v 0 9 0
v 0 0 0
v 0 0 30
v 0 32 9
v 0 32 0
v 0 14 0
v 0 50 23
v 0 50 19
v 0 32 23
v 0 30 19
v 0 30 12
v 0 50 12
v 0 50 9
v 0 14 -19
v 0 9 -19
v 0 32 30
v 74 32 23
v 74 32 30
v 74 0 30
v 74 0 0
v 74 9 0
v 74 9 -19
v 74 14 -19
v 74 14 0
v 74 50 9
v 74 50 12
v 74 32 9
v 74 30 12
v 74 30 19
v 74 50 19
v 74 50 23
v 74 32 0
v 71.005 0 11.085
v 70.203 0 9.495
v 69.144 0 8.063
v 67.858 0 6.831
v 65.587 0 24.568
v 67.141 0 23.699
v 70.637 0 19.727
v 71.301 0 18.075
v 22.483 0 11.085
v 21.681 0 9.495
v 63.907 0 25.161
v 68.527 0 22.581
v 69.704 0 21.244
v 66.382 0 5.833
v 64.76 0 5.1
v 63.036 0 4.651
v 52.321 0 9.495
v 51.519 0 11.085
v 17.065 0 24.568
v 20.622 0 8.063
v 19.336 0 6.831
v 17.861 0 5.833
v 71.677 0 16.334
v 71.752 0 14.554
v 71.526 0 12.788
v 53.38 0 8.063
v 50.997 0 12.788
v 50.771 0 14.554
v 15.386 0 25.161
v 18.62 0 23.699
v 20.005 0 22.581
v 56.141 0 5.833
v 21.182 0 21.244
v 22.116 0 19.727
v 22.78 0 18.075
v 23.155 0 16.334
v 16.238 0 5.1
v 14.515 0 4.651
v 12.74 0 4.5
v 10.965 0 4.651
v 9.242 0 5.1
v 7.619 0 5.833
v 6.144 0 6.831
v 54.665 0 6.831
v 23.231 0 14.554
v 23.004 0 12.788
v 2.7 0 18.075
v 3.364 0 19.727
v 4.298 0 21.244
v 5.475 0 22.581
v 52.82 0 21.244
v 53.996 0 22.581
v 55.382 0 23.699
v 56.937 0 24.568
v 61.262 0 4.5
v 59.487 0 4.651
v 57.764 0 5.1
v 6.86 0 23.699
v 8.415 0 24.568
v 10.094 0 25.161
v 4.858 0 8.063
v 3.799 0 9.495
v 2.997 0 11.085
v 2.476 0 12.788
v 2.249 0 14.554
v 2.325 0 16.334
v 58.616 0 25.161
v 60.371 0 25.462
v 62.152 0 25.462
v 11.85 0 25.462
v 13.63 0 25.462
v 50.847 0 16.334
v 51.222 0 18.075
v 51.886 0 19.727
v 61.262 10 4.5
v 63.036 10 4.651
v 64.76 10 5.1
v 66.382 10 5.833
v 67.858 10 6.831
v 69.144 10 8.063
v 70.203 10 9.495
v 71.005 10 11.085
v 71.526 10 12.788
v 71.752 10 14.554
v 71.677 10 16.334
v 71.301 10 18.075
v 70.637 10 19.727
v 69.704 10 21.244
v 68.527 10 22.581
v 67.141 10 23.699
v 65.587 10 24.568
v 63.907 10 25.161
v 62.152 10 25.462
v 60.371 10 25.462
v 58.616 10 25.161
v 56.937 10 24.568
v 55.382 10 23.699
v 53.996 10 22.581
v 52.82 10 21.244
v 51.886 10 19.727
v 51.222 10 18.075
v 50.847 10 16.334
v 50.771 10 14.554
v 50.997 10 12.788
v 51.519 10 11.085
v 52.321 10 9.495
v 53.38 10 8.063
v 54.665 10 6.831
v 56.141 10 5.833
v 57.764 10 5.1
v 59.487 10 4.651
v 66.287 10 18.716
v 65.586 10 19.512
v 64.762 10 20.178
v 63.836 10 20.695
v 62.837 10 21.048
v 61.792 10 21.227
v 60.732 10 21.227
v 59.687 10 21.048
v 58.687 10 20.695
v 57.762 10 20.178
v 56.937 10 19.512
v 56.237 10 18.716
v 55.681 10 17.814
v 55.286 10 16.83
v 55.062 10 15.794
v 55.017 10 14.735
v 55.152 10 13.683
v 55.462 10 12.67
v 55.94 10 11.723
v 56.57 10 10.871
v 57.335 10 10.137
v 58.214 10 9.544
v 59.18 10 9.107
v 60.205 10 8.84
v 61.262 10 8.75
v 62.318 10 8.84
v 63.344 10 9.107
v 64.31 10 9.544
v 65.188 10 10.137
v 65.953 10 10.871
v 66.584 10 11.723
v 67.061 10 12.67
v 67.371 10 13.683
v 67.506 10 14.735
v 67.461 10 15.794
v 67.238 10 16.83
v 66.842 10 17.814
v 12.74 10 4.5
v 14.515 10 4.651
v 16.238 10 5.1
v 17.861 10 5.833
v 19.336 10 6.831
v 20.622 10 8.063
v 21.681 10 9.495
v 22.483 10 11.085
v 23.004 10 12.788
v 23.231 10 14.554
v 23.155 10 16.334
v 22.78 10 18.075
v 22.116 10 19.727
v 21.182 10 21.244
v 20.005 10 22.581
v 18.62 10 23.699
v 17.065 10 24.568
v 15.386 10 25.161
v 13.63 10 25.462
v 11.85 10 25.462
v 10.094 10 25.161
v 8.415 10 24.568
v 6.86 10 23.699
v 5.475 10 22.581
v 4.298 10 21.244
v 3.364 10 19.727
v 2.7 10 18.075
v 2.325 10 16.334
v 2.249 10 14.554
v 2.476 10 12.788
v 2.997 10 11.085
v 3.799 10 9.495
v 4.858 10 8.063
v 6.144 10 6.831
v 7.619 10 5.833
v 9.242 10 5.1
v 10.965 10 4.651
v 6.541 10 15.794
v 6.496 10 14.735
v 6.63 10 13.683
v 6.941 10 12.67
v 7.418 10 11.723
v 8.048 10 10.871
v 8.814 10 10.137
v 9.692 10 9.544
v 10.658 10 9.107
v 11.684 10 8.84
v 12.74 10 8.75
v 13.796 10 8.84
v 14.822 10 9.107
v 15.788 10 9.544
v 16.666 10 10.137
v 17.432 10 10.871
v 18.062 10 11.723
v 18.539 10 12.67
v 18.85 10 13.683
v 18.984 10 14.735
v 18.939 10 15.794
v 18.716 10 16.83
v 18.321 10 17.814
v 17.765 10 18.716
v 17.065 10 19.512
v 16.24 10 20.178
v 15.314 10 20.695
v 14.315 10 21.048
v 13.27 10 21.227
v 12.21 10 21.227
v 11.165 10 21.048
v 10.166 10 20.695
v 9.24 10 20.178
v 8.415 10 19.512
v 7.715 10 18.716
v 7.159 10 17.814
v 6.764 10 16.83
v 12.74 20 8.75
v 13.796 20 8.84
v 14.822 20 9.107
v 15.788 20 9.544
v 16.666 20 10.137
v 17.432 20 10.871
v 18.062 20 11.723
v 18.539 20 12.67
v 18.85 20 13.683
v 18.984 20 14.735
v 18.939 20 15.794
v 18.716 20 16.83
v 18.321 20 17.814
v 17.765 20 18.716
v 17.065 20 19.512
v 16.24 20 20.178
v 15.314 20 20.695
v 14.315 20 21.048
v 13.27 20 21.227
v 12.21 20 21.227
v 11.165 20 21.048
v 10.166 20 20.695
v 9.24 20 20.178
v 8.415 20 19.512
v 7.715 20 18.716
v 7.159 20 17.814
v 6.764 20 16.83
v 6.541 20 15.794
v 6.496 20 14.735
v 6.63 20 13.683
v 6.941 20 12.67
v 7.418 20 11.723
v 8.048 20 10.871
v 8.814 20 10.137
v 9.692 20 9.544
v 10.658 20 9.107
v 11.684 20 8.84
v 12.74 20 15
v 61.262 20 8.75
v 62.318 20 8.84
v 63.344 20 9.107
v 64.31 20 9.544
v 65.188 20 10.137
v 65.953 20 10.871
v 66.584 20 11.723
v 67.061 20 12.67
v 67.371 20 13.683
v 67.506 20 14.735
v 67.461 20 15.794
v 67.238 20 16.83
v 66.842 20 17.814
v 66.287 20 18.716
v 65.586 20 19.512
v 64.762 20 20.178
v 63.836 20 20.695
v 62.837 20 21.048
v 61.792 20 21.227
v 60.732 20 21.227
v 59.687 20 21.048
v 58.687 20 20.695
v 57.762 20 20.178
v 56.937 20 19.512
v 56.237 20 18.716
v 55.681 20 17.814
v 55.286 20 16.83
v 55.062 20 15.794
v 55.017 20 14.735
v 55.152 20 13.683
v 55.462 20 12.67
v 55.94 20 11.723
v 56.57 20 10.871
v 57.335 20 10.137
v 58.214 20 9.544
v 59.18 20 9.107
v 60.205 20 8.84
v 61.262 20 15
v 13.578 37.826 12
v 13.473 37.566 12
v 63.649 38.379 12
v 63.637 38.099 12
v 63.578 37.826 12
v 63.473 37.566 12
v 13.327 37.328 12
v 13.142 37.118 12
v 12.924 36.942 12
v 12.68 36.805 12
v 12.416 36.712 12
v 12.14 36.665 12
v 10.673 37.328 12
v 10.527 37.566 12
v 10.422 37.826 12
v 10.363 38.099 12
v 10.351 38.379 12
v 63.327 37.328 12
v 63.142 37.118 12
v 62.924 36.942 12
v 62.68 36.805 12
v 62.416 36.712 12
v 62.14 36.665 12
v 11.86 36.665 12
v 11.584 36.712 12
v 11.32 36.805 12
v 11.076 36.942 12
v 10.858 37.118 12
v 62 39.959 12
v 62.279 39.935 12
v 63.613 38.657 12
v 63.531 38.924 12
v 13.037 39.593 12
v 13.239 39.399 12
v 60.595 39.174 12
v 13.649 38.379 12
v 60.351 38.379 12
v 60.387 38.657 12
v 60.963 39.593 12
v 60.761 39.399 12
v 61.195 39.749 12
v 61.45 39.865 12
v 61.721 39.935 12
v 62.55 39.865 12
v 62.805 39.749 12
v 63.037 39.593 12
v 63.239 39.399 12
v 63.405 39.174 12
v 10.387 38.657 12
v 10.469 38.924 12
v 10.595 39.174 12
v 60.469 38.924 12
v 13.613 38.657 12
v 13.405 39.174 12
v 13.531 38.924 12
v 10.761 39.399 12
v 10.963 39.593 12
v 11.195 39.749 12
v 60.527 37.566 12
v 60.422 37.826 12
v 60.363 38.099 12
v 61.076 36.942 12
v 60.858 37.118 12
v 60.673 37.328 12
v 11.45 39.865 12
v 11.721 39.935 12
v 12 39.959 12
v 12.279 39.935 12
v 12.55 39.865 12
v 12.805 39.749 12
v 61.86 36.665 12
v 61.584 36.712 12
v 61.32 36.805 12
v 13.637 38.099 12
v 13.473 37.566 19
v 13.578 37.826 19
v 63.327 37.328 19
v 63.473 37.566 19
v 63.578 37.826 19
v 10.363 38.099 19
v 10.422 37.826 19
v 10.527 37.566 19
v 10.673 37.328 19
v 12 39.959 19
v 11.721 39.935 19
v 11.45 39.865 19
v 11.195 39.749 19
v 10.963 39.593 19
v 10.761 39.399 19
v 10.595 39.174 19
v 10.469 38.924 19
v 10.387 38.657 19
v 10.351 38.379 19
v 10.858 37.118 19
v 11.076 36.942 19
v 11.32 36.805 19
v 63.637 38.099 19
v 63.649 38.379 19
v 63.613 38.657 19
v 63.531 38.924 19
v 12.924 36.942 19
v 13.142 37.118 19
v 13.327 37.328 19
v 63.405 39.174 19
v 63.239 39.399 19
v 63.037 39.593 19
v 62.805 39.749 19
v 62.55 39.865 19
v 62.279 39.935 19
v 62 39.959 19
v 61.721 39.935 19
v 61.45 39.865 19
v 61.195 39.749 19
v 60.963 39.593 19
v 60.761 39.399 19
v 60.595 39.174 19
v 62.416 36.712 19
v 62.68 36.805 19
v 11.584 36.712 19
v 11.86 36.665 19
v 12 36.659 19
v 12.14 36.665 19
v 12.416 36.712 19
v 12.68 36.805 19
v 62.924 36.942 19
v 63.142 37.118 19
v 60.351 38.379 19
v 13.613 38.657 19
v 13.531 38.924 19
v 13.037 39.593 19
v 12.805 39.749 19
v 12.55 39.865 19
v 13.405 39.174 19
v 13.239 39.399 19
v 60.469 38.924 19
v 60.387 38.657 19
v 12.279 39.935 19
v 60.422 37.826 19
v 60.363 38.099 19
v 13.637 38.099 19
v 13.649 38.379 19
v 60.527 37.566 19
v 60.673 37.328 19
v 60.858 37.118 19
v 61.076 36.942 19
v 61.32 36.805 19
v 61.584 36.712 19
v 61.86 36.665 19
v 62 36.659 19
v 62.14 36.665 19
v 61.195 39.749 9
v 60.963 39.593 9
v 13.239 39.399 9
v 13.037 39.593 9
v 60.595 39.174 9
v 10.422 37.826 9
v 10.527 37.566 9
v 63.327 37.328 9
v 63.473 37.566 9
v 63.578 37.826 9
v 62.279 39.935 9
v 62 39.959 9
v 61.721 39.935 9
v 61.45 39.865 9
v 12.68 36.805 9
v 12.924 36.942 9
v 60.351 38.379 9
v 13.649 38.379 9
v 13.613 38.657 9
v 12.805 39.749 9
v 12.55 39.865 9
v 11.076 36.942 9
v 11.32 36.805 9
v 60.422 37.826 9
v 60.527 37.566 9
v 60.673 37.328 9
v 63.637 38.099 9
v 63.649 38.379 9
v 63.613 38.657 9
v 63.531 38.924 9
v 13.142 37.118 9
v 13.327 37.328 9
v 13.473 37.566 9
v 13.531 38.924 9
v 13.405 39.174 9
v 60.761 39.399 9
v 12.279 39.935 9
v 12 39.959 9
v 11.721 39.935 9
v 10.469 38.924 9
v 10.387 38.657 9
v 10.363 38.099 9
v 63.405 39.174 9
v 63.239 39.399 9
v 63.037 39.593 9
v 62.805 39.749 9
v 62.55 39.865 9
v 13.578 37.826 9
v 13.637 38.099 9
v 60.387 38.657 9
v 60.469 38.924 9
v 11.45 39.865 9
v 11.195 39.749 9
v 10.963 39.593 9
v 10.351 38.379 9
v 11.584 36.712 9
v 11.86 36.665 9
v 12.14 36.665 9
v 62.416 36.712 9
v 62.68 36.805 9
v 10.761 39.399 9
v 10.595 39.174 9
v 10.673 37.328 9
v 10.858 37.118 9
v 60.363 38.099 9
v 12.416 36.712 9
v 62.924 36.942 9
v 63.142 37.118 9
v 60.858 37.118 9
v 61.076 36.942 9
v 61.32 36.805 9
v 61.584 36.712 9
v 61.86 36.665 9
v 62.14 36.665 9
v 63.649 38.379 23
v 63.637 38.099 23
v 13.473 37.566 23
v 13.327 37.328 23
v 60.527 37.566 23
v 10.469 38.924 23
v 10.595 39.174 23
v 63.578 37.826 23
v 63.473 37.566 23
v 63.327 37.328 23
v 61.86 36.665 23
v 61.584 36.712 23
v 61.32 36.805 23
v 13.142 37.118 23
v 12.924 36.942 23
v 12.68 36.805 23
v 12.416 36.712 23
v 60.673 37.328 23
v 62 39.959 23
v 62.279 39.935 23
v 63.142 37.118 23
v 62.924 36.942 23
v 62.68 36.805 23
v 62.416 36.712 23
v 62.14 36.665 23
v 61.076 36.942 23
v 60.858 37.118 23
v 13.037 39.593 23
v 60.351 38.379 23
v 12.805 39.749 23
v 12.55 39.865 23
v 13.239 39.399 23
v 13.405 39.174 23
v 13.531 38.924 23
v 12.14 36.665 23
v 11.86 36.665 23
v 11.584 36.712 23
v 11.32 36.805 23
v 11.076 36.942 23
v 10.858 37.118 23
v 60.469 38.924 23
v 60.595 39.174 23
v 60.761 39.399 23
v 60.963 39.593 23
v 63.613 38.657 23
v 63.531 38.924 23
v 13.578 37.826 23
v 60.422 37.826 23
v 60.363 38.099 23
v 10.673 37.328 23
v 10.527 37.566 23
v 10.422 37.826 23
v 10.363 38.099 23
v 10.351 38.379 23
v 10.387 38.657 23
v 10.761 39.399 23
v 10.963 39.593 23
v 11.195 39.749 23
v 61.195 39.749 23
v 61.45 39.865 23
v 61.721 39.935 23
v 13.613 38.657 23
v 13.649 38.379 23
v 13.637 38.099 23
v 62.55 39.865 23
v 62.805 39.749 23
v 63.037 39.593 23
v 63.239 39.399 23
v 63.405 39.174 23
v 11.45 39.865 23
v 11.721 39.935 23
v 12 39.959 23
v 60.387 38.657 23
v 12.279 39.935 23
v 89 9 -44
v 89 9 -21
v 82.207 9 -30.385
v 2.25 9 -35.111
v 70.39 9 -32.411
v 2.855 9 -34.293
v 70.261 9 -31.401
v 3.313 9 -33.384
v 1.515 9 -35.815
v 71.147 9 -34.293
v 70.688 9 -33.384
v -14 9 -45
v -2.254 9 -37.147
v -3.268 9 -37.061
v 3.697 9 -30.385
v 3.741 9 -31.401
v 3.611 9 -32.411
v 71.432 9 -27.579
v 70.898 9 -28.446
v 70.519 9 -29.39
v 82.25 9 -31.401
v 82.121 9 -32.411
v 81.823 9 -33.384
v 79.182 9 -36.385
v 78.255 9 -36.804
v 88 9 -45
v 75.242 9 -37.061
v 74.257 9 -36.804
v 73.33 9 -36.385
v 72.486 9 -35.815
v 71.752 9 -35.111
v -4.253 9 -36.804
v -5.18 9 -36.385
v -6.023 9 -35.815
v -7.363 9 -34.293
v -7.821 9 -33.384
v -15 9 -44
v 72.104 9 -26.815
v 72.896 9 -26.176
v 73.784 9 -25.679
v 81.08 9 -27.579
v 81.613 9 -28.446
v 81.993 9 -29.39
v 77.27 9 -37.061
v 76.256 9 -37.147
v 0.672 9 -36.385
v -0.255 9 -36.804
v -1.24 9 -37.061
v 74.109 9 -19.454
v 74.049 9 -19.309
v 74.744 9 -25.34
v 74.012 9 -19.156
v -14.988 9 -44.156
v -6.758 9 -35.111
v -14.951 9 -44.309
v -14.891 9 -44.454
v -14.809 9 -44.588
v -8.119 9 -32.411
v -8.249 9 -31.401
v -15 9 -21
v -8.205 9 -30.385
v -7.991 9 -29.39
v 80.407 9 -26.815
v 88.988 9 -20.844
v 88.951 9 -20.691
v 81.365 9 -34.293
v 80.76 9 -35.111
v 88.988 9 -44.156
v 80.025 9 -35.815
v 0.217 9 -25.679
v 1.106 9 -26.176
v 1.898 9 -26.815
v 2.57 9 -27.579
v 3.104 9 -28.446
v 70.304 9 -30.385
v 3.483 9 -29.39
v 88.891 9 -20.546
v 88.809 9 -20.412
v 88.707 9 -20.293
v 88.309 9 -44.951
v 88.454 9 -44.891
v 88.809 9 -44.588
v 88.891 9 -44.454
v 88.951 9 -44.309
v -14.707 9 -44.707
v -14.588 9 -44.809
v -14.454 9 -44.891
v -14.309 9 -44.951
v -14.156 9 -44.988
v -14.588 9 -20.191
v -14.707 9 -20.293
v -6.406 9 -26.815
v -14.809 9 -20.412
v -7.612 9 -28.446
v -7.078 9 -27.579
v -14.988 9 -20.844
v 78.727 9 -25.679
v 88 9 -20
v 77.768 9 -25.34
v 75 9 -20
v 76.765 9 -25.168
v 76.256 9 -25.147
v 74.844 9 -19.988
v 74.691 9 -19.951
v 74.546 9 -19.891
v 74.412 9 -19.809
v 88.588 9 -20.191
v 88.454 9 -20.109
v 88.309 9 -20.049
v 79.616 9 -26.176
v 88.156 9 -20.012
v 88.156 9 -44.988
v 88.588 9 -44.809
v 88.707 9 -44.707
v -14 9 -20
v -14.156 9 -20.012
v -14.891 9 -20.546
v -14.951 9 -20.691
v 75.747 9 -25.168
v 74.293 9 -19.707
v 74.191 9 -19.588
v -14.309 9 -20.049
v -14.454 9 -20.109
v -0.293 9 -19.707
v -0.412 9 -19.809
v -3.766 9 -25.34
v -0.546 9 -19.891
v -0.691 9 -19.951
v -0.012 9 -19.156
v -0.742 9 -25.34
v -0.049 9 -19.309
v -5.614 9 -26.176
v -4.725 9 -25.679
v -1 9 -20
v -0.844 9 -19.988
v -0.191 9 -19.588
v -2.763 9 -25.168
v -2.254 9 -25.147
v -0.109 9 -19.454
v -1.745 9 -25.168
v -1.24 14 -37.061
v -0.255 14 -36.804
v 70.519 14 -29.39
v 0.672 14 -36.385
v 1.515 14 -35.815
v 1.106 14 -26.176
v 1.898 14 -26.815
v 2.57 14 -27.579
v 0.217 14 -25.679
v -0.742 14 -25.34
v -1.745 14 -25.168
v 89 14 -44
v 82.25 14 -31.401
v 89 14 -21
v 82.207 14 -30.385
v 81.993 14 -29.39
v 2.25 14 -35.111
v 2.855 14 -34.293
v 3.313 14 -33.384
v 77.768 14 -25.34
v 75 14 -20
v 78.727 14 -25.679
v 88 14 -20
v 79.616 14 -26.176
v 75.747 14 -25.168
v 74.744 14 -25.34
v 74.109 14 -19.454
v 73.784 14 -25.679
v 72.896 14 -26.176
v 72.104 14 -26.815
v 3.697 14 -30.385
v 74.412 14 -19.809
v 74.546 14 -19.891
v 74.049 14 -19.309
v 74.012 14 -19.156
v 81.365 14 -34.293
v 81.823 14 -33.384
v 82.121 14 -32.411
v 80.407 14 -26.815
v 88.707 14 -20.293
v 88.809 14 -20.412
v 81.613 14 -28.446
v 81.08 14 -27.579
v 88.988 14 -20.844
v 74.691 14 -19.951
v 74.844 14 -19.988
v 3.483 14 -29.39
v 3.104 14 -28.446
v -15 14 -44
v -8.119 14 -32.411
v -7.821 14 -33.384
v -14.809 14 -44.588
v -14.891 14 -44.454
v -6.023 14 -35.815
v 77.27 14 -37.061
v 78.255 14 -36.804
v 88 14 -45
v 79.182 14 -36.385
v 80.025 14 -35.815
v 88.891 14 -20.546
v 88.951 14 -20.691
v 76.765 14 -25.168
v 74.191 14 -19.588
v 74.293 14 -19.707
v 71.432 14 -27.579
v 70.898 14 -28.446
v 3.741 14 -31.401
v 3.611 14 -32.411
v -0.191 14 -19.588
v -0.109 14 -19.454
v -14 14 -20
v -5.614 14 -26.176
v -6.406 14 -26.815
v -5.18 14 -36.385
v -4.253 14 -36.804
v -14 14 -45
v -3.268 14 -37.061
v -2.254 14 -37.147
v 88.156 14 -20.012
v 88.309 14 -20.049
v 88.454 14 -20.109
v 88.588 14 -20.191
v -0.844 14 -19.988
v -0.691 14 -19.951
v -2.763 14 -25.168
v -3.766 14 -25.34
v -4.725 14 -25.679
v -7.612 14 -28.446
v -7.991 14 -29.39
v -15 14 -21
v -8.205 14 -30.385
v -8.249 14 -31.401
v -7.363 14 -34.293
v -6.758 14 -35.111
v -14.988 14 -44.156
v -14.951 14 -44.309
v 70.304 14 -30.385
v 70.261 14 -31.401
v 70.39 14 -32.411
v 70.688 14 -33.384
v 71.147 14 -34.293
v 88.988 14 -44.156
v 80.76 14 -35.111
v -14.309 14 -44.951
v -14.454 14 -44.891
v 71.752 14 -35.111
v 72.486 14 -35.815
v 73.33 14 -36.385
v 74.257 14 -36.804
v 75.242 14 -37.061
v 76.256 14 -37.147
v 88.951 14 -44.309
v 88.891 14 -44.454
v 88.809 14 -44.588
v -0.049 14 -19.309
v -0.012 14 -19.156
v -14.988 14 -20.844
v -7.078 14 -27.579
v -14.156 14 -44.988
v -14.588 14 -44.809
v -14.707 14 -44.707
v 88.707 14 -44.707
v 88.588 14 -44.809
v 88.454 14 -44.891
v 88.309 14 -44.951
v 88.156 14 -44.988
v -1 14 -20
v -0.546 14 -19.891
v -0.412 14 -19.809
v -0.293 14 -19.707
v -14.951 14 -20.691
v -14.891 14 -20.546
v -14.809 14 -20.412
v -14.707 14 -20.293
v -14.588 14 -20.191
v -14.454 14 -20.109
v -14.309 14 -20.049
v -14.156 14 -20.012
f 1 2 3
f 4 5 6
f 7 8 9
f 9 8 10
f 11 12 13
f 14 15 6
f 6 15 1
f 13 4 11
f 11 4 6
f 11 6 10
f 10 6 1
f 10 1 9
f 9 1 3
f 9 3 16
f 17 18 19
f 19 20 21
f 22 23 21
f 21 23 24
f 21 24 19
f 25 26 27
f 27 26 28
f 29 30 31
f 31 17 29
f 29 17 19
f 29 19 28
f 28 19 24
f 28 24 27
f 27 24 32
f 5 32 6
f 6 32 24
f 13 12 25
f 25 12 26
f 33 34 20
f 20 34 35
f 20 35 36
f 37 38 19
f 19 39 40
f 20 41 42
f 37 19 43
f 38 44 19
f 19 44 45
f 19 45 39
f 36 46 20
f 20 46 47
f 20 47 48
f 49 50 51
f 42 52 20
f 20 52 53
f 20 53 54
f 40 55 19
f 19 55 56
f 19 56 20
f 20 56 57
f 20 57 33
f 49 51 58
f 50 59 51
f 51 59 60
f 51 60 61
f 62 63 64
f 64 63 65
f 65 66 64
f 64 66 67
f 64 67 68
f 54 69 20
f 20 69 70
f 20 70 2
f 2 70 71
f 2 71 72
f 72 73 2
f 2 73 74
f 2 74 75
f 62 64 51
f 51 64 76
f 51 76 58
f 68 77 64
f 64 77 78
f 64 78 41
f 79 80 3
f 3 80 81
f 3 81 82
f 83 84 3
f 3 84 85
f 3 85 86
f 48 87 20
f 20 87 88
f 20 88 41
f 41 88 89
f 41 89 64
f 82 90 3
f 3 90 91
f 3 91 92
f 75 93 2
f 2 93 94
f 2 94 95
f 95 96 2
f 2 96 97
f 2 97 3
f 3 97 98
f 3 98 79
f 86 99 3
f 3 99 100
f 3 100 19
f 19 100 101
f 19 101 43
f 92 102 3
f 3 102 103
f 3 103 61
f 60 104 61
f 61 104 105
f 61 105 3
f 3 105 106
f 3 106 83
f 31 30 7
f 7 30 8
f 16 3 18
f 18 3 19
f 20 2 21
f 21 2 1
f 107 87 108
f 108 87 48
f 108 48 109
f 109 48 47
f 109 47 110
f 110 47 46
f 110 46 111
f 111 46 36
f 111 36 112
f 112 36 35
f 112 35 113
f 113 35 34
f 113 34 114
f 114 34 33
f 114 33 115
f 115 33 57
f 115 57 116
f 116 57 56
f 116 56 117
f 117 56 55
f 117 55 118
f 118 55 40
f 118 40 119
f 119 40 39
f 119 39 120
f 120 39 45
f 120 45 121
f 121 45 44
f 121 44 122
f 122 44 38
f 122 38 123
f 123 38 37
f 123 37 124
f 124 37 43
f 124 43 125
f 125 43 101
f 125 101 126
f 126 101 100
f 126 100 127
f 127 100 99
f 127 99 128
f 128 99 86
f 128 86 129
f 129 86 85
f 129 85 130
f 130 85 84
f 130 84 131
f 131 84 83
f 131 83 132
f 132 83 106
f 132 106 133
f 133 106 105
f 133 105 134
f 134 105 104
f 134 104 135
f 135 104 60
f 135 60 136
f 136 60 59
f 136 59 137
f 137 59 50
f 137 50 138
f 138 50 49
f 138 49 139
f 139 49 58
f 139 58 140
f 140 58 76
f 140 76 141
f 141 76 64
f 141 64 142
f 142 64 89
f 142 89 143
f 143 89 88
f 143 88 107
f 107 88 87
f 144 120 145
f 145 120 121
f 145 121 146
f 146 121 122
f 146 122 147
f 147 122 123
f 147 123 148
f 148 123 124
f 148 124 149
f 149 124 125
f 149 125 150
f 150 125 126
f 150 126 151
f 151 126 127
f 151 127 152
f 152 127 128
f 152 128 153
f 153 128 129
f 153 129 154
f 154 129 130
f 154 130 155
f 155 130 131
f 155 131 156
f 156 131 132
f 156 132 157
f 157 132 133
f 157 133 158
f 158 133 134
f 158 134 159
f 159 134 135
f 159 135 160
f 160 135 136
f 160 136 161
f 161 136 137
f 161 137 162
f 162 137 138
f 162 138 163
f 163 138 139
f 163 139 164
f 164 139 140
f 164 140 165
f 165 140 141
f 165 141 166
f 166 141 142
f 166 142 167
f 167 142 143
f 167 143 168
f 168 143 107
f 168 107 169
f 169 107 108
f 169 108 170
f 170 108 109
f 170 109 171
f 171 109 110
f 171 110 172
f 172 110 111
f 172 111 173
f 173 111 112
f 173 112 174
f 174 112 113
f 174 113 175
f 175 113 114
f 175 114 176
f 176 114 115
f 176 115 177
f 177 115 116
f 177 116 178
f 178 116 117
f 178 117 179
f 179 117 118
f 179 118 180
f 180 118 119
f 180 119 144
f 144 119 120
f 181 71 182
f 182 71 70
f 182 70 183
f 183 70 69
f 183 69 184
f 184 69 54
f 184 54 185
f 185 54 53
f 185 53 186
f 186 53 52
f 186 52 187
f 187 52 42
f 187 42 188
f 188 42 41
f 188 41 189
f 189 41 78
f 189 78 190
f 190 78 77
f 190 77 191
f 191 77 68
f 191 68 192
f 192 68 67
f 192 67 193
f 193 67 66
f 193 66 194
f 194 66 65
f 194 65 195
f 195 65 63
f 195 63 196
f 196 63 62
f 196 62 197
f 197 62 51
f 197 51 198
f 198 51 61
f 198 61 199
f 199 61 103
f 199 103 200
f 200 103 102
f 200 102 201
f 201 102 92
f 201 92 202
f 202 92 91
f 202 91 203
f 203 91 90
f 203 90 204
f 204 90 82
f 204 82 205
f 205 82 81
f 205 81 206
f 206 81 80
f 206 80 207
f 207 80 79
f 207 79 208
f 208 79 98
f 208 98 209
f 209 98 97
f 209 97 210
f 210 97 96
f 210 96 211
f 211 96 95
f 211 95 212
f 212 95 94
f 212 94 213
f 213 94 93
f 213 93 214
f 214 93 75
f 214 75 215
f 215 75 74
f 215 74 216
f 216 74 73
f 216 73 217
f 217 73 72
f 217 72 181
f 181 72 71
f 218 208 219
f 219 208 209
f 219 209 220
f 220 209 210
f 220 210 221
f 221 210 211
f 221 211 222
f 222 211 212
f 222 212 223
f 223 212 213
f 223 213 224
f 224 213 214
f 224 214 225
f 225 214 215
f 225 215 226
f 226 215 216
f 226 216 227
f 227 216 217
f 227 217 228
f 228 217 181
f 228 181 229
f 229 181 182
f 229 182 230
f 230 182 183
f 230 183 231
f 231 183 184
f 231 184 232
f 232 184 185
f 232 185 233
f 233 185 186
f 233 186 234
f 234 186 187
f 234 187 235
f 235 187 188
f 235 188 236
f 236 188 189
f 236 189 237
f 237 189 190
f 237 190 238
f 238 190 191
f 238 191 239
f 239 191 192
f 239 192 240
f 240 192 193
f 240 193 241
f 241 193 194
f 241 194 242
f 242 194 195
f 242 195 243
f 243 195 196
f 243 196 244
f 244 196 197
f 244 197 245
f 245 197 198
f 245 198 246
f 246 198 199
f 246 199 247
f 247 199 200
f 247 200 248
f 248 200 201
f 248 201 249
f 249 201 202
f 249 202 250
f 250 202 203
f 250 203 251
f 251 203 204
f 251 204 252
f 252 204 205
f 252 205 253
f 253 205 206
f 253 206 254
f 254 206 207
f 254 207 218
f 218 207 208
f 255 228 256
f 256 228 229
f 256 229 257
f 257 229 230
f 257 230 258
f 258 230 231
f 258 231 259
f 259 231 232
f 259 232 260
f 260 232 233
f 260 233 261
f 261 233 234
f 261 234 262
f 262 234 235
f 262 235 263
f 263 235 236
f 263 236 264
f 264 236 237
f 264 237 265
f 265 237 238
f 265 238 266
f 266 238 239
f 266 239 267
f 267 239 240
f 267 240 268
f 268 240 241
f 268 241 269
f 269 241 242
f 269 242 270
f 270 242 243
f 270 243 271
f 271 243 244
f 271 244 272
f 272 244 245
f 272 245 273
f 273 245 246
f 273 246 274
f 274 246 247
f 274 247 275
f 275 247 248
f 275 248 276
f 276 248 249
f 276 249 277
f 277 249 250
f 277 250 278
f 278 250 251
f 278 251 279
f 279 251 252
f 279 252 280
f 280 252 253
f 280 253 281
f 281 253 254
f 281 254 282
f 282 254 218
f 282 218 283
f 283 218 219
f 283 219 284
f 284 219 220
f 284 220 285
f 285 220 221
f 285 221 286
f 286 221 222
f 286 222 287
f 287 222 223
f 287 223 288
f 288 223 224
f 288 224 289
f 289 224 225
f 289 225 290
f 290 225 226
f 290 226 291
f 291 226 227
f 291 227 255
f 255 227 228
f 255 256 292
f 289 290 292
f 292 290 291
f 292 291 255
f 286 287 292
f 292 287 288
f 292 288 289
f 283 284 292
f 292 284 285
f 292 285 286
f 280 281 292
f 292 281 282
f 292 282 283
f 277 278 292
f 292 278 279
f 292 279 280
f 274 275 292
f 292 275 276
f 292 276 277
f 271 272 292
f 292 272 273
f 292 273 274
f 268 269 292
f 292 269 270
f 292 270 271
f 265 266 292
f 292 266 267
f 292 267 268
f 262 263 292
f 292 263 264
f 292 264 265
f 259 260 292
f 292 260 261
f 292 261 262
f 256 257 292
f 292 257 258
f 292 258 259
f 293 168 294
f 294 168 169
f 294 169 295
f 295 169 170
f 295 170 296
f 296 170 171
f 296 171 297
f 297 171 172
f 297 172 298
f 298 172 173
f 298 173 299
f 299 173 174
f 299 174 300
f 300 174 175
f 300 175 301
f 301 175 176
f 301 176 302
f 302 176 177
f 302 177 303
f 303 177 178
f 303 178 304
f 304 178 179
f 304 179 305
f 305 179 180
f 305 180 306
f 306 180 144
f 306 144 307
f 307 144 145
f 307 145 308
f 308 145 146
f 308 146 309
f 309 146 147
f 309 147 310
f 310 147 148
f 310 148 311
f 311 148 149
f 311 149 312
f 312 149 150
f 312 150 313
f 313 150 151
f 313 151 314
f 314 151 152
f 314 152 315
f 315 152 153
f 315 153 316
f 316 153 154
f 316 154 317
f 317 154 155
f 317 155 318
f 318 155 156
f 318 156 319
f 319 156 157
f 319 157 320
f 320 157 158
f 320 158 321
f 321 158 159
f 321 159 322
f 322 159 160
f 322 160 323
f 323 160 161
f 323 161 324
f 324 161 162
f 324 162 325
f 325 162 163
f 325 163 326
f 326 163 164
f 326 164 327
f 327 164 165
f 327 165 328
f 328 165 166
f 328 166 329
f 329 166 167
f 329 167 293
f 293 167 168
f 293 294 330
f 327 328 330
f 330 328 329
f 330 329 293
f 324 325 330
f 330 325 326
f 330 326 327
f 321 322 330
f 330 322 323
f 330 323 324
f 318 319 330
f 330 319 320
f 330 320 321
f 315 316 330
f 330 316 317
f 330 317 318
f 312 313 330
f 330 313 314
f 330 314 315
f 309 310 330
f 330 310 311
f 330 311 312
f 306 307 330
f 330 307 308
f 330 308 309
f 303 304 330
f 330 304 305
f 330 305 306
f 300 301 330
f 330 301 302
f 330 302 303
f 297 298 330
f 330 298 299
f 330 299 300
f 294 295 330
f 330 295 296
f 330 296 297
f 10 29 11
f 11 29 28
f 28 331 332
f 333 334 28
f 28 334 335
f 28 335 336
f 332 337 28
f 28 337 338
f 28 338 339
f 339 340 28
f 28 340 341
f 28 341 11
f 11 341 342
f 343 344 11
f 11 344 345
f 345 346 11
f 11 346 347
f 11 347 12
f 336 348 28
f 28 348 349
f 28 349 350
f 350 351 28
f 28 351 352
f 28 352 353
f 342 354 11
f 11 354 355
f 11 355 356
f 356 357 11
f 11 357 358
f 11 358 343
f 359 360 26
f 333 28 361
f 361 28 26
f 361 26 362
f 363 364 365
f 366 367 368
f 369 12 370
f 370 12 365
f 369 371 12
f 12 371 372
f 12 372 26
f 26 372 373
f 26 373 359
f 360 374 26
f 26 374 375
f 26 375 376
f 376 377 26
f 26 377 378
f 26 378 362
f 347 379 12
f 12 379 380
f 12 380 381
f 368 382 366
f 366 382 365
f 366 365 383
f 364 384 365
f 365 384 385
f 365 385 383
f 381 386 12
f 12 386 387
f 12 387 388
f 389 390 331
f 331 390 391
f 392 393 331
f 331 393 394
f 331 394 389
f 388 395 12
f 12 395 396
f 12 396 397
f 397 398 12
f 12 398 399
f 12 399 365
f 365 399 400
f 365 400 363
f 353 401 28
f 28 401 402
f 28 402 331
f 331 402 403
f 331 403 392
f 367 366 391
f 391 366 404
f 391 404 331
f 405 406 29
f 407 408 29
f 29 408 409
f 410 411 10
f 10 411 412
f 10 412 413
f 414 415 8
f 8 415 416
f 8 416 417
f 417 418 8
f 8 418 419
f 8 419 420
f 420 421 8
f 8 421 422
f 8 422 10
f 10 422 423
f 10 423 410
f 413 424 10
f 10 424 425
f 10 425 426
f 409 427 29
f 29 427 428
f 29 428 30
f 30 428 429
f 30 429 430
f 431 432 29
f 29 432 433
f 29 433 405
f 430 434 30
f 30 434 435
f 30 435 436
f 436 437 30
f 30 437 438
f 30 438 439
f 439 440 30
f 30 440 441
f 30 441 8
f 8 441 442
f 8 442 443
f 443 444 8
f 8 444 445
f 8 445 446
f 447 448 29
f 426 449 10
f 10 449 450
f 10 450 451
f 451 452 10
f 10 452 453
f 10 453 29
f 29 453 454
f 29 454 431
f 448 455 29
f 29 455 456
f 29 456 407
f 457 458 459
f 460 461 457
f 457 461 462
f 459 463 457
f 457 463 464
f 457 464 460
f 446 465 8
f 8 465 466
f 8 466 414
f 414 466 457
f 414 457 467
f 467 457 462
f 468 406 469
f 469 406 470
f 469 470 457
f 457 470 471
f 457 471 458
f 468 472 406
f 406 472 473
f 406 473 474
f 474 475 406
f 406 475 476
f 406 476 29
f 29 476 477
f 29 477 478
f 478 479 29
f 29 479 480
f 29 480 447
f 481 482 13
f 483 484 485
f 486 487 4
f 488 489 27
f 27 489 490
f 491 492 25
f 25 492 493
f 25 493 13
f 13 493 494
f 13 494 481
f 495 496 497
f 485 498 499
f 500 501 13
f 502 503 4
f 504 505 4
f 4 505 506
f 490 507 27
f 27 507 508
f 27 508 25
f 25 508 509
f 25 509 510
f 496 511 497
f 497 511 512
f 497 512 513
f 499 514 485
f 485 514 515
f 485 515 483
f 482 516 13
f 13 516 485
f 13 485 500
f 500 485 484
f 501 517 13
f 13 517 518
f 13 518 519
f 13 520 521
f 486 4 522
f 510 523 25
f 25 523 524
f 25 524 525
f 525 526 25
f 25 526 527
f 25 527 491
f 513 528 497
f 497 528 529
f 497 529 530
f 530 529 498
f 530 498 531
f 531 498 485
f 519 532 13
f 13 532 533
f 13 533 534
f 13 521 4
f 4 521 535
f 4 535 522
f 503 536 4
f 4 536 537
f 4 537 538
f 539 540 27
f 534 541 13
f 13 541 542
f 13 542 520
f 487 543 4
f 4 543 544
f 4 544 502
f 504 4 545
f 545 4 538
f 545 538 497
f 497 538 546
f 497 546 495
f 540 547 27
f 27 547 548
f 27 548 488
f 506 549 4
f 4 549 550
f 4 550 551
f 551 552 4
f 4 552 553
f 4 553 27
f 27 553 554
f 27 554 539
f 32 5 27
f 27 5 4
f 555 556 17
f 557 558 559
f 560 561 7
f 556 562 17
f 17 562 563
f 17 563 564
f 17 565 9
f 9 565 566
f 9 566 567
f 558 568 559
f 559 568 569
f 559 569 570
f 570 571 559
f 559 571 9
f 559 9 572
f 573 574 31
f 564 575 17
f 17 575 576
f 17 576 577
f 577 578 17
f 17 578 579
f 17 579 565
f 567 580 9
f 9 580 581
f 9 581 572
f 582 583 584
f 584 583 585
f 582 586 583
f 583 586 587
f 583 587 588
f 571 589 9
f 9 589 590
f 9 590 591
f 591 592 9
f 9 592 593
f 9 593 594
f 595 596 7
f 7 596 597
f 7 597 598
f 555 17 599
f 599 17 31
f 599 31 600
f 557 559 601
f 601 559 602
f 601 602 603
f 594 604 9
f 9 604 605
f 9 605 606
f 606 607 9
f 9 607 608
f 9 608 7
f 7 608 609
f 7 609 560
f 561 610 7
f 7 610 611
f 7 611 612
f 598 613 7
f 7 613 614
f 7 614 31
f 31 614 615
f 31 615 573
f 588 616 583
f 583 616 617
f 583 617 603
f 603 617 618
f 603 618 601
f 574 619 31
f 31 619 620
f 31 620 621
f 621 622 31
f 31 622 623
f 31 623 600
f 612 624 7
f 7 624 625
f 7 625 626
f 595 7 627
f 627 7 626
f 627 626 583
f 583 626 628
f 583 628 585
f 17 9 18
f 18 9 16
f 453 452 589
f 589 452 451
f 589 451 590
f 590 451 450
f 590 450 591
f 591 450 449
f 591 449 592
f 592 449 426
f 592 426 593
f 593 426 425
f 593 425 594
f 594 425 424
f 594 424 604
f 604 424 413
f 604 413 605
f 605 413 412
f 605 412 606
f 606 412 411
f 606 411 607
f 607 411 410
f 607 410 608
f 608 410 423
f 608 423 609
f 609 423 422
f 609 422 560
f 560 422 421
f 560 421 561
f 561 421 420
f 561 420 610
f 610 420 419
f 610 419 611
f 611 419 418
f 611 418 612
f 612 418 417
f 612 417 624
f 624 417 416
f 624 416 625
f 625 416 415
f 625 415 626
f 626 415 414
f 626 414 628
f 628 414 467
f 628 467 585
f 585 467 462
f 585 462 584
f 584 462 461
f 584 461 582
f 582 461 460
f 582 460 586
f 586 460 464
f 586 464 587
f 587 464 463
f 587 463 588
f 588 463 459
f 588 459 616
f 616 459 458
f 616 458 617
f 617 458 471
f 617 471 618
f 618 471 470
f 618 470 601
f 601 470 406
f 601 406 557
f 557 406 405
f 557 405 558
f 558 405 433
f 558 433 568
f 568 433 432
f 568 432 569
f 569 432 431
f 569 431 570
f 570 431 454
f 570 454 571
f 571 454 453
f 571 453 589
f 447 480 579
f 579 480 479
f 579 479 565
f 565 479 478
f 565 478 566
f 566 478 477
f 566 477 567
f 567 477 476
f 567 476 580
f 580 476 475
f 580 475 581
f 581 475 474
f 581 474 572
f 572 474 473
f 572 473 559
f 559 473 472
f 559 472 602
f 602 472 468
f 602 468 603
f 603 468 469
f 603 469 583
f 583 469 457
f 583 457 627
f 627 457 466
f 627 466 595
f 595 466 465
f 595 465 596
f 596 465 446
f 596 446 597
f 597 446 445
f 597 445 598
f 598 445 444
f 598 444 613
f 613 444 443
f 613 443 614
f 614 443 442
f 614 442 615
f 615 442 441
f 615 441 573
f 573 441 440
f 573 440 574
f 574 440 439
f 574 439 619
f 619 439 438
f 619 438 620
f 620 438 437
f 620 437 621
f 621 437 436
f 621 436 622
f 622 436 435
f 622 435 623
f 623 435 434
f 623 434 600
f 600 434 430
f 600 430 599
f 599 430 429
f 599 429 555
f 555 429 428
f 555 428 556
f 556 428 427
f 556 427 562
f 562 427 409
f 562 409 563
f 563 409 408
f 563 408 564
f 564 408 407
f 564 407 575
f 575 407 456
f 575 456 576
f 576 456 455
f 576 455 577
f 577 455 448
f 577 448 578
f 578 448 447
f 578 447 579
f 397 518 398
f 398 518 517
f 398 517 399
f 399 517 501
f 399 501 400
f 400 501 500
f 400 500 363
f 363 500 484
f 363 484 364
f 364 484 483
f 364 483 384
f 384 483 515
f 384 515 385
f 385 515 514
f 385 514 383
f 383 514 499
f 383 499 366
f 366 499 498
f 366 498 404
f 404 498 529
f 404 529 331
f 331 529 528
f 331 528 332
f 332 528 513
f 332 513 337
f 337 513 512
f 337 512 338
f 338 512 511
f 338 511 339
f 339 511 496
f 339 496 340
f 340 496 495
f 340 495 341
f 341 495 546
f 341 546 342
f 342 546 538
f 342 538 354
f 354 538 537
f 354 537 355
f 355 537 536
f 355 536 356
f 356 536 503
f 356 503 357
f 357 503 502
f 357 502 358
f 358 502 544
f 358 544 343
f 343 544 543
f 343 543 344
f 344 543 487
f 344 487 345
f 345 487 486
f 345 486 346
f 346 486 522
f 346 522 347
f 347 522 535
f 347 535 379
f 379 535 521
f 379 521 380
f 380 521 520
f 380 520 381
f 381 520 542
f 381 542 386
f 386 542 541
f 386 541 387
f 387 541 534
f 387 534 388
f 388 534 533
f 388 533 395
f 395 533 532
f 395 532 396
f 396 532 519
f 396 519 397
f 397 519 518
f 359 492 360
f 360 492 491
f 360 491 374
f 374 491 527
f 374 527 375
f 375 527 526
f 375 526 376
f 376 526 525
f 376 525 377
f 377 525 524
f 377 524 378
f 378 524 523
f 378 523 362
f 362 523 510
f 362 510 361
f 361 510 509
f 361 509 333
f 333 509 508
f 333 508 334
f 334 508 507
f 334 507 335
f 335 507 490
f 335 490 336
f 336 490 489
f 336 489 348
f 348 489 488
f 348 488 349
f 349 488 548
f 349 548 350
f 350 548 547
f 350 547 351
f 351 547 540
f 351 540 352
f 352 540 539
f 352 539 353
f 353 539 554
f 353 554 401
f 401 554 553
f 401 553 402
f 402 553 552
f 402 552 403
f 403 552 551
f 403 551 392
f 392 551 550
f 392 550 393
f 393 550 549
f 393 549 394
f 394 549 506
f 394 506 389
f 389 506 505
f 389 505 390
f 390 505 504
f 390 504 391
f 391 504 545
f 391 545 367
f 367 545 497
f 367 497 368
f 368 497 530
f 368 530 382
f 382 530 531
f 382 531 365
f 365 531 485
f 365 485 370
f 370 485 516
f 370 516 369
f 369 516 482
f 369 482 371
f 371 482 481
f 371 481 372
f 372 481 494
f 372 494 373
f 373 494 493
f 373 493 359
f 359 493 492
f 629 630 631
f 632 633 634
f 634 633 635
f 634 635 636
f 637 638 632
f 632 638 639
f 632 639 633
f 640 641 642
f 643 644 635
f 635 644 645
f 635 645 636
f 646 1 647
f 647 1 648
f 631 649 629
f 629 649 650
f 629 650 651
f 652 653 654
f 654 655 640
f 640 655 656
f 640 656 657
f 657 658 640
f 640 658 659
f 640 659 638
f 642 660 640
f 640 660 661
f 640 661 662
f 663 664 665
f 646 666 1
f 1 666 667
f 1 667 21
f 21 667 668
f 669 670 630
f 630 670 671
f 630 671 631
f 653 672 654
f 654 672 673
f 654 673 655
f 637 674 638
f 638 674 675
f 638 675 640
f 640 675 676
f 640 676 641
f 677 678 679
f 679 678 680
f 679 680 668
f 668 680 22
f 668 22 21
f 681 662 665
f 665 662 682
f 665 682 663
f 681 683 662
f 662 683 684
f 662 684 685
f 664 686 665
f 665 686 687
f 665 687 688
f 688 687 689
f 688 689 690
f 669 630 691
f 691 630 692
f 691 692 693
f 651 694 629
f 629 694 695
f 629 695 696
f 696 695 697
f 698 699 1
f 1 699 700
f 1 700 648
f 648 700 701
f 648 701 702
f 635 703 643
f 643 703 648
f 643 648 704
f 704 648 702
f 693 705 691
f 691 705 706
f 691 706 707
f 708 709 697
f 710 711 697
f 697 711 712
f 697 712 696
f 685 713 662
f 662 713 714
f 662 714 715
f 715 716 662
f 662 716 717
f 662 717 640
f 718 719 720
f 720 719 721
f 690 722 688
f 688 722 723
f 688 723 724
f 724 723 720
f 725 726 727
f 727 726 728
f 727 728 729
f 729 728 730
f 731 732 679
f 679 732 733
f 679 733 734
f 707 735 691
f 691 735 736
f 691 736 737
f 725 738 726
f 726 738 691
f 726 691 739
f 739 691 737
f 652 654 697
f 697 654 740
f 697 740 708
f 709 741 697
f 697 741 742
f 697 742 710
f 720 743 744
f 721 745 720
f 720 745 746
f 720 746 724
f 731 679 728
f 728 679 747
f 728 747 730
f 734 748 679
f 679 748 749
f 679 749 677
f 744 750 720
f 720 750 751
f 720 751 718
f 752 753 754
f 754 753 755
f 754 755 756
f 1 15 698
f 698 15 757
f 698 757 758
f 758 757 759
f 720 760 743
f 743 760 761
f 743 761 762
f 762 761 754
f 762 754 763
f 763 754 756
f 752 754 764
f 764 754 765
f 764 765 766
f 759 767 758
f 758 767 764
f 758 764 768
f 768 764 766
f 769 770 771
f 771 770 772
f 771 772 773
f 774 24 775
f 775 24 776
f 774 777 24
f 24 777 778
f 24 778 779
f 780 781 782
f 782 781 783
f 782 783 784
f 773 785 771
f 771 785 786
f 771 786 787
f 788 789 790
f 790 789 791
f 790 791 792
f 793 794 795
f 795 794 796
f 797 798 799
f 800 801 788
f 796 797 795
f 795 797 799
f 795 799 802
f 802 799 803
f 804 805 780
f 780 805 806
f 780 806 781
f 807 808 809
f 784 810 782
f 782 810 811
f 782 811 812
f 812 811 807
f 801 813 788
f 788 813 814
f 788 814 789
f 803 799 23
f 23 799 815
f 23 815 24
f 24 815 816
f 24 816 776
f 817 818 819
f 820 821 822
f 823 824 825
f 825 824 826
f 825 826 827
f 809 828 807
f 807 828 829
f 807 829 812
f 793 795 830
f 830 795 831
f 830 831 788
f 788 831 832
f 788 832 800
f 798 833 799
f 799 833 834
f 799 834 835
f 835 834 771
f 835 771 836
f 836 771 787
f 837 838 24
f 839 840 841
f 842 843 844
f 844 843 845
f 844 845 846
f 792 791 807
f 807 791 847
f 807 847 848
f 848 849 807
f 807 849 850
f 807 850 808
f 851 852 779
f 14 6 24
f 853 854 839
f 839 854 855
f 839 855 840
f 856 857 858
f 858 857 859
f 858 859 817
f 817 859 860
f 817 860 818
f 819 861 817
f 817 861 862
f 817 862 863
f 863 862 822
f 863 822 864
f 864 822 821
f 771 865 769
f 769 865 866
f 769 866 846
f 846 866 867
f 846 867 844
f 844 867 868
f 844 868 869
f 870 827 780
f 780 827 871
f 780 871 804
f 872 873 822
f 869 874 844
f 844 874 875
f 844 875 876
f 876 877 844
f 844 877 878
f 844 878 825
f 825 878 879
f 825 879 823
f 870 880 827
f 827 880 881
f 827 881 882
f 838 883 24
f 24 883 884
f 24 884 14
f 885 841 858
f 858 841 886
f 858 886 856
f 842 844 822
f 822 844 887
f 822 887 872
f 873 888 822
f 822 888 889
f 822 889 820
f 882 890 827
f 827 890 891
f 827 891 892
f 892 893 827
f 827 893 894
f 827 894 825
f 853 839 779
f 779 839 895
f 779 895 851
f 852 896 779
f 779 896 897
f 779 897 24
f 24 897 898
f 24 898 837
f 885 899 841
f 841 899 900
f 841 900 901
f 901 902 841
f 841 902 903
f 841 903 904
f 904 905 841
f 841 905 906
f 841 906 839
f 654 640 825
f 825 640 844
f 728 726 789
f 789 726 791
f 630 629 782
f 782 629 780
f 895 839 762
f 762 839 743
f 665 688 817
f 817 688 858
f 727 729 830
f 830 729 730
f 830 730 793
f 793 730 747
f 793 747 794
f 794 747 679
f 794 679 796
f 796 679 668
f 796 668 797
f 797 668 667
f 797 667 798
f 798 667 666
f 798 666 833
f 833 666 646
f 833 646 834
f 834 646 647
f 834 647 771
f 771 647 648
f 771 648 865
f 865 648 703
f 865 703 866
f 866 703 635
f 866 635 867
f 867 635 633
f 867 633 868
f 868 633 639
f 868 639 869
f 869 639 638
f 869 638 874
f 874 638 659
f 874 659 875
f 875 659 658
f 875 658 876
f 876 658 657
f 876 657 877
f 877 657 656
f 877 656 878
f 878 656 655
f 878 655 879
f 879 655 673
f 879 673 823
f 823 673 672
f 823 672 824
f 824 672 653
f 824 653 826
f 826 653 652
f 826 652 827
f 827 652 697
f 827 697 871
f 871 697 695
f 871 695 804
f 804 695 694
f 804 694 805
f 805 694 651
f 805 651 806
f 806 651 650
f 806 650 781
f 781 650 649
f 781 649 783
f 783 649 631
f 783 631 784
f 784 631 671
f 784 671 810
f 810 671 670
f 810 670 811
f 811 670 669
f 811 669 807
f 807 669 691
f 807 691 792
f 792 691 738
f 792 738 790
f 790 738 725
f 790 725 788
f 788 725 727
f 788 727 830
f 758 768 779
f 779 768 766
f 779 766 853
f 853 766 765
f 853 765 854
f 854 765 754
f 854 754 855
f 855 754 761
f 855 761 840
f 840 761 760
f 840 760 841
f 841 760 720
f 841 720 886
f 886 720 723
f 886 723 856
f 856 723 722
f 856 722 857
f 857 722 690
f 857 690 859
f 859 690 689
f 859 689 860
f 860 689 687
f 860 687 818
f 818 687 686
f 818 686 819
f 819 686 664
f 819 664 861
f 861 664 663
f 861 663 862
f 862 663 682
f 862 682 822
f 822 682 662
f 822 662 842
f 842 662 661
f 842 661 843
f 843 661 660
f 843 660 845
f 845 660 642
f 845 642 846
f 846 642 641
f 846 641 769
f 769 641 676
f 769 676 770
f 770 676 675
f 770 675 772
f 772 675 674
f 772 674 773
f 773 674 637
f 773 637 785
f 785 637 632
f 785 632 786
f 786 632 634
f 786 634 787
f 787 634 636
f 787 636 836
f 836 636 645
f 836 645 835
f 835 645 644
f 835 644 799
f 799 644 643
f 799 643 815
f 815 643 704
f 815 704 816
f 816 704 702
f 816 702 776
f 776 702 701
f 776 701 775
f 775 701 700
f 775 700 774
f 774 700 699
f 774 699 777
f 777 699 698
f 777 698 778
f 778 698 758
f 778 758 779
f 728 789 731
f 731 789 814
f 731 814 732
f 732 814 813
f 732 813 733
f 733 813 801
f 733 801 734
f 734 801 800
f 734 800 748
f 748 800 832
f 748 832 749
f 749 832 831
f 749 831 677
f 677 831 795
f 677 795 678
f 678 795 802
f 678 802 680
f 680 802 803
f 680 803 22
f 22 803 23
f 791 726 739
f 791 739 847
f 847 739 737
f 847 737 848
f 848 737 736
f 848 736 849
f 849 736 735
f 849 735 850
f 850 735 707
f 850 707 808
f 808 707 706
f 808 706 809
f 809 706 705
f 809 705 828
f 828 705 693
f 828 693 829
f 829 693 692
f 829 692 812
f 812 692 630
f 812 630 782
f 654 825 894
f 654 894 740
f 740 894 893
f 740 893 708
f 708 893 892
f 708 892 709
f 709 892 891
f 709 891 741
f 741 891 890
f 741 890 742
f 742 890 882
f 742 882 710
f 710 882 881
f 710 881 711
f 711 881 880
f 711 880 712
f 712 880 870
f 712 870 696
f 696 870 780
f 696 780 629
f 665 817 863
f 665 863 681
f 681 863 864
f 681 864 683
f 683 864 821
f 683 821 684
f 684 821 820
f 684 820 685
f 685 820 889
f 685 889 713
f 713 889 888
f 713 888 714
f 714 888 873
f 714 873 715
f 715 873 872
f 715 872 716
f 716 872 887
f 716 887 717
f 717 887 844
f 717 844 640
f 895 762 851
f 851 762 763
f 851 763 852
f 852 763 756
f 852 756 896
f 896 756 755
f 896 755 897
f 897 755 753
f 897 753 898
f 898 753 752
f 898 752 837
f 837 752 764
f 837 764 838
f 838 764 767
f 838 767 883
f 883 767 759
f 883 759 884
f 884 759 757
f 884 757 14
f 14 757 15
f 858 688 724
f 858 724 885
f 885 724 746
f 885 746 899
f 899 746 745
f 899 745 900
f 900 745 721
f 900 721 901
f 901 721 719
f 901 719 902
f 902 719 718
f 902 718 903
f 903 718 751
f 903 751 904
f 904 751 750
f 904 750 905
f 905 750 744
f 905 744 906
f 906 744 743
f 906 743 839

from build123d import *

# Parameters (mm, degrees)
SKETCH1_W           = 74
SKETCH1_H           = 50
BOSS_EXTRUDE1_DEPTH = 30
SKETCH2_R           = 10.5
CUT_EXTRUDE1_DEPTH  = 10
SKETCH3_R           = 6.25
CUT_EXTRUDE2_DEPTH  = 10
SKETCH4_W           = 7
SKETCH4_H           = 20
CUT_EXTRUDE3_DEPTH  = 111
SKETCH5_W           = 7
SKETCH5_H           = 18
SKETCH5_W_2         = 9
CUT_EXTRUDE4_DEPTH  = 111
SKETCH6_R           = 1.65
CUT_EXTRUDE5_DEPTH  = 111
SKETCH7_W           = 74
SKETCH7_H           = 5
BOSS_EXTRUDE2_DEPTH = 45
SKETCH8_W           = 25
SKETCH8_H           = 5
BOSS_EXTRUDE3_DEPTH = 15
SKETCH9_W           = 25
SKETCH9_H           = 5
BOSS_EXTRUDE4_DEPTH = 15
SKETCH10_R          = 6
CUT_EXTRUDE6_DEPTH  = 50
FILLET1_R           = 1


with BuildPart() as part:
    # Sketch1 → Boss-Extrude1 (new body)
    with BuildSketch(Plane.XY):
        with Locations((37, 25)):
            Rectangle(SKETCH1_W, SKETCH1_H)
    extrude(amount=BOSS_EXTRUDE1_DEPTH)

    # Sketch2 → Cut-Extrude1 (cut)
    with BuildSketch(Plane.XZ):
        with Locations((12.74, 15)):
            Circle(SKETCH2_R)
        with Locations((61.26167258, 15)):
            Circle(SKETCH2_R)
    extrude(amount=-CUT_EXTRUDE1_DEPTH, mode=Mode.SUBTRACT)

    # Sketch3 → Cut-Extrude2 (cut)
    with BuildSketch(Plane.XZ.offset(-10)):
        with Locations((12.74, 15)):
            Circle(SKETCH3_R)
        with Locations((61.26167258, 15)):
            Circle(SKETCH3_R)
    extrude(amount=-CUT_EXTRUDE2_DEPTH, mode=Mode.SUBTRACT)

    # Sketch4 → Cut-Extrude3 (cut)
    with BuildSketch(Plane.ZY):
        with Locations((15.5, 40)):
            Rectangle(SKETCH4_W, SKETCH4_H)
    extrude(amount=-CUT_EXTRUDE3_DEPTH, mode=Mode.SUBTRACT)

    # Sketch5 → Cut-Extrude4 (cut)
    with BuildSketch(Plane(origin=(74, 0, 0), x_dir=(0, 0, -1), z_dir=(1, 0, 0))):
        with Locations((-26.5, 41)):
            Rectangle(SKETCH5_W, SKETCH5_H)
        with Locations((-4.5, 41)):
            Rectangle(SKETCH5_W_2, SKETCH5_H)
    extrude(amount=-CUT_EXTRUDE4_DEPTH, mode=Mode.SUBTRACT)

    # Sketch6 → Cut-Extrude5 (cut)
    with BuildSketch(Plane(origin=(0, 0, 9), x_dir=(-1, 0, 0), z_dir=(0, 0, -1))):
        with Locations((-62, 38.308927031)):
            Circle(SKETCH6_R)
        with Locations((-12, 38.308927031)):
            Circle(SKETCH6_R)
    extrude(amount=-CUT_EXTRUDE5_DEPTH, mode=Mode.SUBTRACT)

    # Sketch7 → Boss-Extrude2 (add)
    with BuildSketch(Plane(origin=(0, 0, 0), x_dir=(-1, 0, 0), z_dir=(0, 0, -1))):
        with Locations((-37, 11.5)):
            Rectangle(SKETCH7_W, SKETCH7_H)
    extrude(amount=BOSS_EXTRUDE2_DEPTH)

    # Sketch8 → Boss-Extrude3 (add)
    with BuildSketch(Plane(origin=(74, 0, 0), x_dir=(0, 0, -1), z_dir=(1, 0, 0))):
        with Locations((32.5, 11.5)):
            Rectangle(SKETCH8_W, SKETCH8_H)
    extrude(amount=BOSS_EXTRUDE3_DEPTH)

    # Sketch9 → Boss-Extrude4 (add)
    with BuildSketch(Plane.ZY):
        with Locations((-32.5, 11.5)):
            Rectangle(SKETCH9_W, SKETCH9_H)
    extrude(amount=BOSS_EXTRUDE4_DEPTH)

    # Sketch10 → Cut-Extrude6 (cut)
    with BuildSketch(Plane.XZ):
        with Locations((-2.254021422, -31.146852886)):
            Circle(SKETCH10_R)
        with Locations((76.255693998, -31.146852886)):
            Circle(SKETCH10_R)
    extrude(amount=-CUT_EXTRUDE6_DEPTH, mode=Mode.SUBTRACT)

    # Fillet1
    fillet1_edges = [part.edges().sort_by_distance(p)[0] for p in [
        (74, 11.5, -20),
        (89, 11.5, -45),
        (89, 11.5, -20),
        (0, 11.5, -20),
        (-15, 11.5, -45),
        (-15, 11.5, -20),
    ]]
    fillet(fillet1_edges, radius=FILLET1_R)


solid = part.part
